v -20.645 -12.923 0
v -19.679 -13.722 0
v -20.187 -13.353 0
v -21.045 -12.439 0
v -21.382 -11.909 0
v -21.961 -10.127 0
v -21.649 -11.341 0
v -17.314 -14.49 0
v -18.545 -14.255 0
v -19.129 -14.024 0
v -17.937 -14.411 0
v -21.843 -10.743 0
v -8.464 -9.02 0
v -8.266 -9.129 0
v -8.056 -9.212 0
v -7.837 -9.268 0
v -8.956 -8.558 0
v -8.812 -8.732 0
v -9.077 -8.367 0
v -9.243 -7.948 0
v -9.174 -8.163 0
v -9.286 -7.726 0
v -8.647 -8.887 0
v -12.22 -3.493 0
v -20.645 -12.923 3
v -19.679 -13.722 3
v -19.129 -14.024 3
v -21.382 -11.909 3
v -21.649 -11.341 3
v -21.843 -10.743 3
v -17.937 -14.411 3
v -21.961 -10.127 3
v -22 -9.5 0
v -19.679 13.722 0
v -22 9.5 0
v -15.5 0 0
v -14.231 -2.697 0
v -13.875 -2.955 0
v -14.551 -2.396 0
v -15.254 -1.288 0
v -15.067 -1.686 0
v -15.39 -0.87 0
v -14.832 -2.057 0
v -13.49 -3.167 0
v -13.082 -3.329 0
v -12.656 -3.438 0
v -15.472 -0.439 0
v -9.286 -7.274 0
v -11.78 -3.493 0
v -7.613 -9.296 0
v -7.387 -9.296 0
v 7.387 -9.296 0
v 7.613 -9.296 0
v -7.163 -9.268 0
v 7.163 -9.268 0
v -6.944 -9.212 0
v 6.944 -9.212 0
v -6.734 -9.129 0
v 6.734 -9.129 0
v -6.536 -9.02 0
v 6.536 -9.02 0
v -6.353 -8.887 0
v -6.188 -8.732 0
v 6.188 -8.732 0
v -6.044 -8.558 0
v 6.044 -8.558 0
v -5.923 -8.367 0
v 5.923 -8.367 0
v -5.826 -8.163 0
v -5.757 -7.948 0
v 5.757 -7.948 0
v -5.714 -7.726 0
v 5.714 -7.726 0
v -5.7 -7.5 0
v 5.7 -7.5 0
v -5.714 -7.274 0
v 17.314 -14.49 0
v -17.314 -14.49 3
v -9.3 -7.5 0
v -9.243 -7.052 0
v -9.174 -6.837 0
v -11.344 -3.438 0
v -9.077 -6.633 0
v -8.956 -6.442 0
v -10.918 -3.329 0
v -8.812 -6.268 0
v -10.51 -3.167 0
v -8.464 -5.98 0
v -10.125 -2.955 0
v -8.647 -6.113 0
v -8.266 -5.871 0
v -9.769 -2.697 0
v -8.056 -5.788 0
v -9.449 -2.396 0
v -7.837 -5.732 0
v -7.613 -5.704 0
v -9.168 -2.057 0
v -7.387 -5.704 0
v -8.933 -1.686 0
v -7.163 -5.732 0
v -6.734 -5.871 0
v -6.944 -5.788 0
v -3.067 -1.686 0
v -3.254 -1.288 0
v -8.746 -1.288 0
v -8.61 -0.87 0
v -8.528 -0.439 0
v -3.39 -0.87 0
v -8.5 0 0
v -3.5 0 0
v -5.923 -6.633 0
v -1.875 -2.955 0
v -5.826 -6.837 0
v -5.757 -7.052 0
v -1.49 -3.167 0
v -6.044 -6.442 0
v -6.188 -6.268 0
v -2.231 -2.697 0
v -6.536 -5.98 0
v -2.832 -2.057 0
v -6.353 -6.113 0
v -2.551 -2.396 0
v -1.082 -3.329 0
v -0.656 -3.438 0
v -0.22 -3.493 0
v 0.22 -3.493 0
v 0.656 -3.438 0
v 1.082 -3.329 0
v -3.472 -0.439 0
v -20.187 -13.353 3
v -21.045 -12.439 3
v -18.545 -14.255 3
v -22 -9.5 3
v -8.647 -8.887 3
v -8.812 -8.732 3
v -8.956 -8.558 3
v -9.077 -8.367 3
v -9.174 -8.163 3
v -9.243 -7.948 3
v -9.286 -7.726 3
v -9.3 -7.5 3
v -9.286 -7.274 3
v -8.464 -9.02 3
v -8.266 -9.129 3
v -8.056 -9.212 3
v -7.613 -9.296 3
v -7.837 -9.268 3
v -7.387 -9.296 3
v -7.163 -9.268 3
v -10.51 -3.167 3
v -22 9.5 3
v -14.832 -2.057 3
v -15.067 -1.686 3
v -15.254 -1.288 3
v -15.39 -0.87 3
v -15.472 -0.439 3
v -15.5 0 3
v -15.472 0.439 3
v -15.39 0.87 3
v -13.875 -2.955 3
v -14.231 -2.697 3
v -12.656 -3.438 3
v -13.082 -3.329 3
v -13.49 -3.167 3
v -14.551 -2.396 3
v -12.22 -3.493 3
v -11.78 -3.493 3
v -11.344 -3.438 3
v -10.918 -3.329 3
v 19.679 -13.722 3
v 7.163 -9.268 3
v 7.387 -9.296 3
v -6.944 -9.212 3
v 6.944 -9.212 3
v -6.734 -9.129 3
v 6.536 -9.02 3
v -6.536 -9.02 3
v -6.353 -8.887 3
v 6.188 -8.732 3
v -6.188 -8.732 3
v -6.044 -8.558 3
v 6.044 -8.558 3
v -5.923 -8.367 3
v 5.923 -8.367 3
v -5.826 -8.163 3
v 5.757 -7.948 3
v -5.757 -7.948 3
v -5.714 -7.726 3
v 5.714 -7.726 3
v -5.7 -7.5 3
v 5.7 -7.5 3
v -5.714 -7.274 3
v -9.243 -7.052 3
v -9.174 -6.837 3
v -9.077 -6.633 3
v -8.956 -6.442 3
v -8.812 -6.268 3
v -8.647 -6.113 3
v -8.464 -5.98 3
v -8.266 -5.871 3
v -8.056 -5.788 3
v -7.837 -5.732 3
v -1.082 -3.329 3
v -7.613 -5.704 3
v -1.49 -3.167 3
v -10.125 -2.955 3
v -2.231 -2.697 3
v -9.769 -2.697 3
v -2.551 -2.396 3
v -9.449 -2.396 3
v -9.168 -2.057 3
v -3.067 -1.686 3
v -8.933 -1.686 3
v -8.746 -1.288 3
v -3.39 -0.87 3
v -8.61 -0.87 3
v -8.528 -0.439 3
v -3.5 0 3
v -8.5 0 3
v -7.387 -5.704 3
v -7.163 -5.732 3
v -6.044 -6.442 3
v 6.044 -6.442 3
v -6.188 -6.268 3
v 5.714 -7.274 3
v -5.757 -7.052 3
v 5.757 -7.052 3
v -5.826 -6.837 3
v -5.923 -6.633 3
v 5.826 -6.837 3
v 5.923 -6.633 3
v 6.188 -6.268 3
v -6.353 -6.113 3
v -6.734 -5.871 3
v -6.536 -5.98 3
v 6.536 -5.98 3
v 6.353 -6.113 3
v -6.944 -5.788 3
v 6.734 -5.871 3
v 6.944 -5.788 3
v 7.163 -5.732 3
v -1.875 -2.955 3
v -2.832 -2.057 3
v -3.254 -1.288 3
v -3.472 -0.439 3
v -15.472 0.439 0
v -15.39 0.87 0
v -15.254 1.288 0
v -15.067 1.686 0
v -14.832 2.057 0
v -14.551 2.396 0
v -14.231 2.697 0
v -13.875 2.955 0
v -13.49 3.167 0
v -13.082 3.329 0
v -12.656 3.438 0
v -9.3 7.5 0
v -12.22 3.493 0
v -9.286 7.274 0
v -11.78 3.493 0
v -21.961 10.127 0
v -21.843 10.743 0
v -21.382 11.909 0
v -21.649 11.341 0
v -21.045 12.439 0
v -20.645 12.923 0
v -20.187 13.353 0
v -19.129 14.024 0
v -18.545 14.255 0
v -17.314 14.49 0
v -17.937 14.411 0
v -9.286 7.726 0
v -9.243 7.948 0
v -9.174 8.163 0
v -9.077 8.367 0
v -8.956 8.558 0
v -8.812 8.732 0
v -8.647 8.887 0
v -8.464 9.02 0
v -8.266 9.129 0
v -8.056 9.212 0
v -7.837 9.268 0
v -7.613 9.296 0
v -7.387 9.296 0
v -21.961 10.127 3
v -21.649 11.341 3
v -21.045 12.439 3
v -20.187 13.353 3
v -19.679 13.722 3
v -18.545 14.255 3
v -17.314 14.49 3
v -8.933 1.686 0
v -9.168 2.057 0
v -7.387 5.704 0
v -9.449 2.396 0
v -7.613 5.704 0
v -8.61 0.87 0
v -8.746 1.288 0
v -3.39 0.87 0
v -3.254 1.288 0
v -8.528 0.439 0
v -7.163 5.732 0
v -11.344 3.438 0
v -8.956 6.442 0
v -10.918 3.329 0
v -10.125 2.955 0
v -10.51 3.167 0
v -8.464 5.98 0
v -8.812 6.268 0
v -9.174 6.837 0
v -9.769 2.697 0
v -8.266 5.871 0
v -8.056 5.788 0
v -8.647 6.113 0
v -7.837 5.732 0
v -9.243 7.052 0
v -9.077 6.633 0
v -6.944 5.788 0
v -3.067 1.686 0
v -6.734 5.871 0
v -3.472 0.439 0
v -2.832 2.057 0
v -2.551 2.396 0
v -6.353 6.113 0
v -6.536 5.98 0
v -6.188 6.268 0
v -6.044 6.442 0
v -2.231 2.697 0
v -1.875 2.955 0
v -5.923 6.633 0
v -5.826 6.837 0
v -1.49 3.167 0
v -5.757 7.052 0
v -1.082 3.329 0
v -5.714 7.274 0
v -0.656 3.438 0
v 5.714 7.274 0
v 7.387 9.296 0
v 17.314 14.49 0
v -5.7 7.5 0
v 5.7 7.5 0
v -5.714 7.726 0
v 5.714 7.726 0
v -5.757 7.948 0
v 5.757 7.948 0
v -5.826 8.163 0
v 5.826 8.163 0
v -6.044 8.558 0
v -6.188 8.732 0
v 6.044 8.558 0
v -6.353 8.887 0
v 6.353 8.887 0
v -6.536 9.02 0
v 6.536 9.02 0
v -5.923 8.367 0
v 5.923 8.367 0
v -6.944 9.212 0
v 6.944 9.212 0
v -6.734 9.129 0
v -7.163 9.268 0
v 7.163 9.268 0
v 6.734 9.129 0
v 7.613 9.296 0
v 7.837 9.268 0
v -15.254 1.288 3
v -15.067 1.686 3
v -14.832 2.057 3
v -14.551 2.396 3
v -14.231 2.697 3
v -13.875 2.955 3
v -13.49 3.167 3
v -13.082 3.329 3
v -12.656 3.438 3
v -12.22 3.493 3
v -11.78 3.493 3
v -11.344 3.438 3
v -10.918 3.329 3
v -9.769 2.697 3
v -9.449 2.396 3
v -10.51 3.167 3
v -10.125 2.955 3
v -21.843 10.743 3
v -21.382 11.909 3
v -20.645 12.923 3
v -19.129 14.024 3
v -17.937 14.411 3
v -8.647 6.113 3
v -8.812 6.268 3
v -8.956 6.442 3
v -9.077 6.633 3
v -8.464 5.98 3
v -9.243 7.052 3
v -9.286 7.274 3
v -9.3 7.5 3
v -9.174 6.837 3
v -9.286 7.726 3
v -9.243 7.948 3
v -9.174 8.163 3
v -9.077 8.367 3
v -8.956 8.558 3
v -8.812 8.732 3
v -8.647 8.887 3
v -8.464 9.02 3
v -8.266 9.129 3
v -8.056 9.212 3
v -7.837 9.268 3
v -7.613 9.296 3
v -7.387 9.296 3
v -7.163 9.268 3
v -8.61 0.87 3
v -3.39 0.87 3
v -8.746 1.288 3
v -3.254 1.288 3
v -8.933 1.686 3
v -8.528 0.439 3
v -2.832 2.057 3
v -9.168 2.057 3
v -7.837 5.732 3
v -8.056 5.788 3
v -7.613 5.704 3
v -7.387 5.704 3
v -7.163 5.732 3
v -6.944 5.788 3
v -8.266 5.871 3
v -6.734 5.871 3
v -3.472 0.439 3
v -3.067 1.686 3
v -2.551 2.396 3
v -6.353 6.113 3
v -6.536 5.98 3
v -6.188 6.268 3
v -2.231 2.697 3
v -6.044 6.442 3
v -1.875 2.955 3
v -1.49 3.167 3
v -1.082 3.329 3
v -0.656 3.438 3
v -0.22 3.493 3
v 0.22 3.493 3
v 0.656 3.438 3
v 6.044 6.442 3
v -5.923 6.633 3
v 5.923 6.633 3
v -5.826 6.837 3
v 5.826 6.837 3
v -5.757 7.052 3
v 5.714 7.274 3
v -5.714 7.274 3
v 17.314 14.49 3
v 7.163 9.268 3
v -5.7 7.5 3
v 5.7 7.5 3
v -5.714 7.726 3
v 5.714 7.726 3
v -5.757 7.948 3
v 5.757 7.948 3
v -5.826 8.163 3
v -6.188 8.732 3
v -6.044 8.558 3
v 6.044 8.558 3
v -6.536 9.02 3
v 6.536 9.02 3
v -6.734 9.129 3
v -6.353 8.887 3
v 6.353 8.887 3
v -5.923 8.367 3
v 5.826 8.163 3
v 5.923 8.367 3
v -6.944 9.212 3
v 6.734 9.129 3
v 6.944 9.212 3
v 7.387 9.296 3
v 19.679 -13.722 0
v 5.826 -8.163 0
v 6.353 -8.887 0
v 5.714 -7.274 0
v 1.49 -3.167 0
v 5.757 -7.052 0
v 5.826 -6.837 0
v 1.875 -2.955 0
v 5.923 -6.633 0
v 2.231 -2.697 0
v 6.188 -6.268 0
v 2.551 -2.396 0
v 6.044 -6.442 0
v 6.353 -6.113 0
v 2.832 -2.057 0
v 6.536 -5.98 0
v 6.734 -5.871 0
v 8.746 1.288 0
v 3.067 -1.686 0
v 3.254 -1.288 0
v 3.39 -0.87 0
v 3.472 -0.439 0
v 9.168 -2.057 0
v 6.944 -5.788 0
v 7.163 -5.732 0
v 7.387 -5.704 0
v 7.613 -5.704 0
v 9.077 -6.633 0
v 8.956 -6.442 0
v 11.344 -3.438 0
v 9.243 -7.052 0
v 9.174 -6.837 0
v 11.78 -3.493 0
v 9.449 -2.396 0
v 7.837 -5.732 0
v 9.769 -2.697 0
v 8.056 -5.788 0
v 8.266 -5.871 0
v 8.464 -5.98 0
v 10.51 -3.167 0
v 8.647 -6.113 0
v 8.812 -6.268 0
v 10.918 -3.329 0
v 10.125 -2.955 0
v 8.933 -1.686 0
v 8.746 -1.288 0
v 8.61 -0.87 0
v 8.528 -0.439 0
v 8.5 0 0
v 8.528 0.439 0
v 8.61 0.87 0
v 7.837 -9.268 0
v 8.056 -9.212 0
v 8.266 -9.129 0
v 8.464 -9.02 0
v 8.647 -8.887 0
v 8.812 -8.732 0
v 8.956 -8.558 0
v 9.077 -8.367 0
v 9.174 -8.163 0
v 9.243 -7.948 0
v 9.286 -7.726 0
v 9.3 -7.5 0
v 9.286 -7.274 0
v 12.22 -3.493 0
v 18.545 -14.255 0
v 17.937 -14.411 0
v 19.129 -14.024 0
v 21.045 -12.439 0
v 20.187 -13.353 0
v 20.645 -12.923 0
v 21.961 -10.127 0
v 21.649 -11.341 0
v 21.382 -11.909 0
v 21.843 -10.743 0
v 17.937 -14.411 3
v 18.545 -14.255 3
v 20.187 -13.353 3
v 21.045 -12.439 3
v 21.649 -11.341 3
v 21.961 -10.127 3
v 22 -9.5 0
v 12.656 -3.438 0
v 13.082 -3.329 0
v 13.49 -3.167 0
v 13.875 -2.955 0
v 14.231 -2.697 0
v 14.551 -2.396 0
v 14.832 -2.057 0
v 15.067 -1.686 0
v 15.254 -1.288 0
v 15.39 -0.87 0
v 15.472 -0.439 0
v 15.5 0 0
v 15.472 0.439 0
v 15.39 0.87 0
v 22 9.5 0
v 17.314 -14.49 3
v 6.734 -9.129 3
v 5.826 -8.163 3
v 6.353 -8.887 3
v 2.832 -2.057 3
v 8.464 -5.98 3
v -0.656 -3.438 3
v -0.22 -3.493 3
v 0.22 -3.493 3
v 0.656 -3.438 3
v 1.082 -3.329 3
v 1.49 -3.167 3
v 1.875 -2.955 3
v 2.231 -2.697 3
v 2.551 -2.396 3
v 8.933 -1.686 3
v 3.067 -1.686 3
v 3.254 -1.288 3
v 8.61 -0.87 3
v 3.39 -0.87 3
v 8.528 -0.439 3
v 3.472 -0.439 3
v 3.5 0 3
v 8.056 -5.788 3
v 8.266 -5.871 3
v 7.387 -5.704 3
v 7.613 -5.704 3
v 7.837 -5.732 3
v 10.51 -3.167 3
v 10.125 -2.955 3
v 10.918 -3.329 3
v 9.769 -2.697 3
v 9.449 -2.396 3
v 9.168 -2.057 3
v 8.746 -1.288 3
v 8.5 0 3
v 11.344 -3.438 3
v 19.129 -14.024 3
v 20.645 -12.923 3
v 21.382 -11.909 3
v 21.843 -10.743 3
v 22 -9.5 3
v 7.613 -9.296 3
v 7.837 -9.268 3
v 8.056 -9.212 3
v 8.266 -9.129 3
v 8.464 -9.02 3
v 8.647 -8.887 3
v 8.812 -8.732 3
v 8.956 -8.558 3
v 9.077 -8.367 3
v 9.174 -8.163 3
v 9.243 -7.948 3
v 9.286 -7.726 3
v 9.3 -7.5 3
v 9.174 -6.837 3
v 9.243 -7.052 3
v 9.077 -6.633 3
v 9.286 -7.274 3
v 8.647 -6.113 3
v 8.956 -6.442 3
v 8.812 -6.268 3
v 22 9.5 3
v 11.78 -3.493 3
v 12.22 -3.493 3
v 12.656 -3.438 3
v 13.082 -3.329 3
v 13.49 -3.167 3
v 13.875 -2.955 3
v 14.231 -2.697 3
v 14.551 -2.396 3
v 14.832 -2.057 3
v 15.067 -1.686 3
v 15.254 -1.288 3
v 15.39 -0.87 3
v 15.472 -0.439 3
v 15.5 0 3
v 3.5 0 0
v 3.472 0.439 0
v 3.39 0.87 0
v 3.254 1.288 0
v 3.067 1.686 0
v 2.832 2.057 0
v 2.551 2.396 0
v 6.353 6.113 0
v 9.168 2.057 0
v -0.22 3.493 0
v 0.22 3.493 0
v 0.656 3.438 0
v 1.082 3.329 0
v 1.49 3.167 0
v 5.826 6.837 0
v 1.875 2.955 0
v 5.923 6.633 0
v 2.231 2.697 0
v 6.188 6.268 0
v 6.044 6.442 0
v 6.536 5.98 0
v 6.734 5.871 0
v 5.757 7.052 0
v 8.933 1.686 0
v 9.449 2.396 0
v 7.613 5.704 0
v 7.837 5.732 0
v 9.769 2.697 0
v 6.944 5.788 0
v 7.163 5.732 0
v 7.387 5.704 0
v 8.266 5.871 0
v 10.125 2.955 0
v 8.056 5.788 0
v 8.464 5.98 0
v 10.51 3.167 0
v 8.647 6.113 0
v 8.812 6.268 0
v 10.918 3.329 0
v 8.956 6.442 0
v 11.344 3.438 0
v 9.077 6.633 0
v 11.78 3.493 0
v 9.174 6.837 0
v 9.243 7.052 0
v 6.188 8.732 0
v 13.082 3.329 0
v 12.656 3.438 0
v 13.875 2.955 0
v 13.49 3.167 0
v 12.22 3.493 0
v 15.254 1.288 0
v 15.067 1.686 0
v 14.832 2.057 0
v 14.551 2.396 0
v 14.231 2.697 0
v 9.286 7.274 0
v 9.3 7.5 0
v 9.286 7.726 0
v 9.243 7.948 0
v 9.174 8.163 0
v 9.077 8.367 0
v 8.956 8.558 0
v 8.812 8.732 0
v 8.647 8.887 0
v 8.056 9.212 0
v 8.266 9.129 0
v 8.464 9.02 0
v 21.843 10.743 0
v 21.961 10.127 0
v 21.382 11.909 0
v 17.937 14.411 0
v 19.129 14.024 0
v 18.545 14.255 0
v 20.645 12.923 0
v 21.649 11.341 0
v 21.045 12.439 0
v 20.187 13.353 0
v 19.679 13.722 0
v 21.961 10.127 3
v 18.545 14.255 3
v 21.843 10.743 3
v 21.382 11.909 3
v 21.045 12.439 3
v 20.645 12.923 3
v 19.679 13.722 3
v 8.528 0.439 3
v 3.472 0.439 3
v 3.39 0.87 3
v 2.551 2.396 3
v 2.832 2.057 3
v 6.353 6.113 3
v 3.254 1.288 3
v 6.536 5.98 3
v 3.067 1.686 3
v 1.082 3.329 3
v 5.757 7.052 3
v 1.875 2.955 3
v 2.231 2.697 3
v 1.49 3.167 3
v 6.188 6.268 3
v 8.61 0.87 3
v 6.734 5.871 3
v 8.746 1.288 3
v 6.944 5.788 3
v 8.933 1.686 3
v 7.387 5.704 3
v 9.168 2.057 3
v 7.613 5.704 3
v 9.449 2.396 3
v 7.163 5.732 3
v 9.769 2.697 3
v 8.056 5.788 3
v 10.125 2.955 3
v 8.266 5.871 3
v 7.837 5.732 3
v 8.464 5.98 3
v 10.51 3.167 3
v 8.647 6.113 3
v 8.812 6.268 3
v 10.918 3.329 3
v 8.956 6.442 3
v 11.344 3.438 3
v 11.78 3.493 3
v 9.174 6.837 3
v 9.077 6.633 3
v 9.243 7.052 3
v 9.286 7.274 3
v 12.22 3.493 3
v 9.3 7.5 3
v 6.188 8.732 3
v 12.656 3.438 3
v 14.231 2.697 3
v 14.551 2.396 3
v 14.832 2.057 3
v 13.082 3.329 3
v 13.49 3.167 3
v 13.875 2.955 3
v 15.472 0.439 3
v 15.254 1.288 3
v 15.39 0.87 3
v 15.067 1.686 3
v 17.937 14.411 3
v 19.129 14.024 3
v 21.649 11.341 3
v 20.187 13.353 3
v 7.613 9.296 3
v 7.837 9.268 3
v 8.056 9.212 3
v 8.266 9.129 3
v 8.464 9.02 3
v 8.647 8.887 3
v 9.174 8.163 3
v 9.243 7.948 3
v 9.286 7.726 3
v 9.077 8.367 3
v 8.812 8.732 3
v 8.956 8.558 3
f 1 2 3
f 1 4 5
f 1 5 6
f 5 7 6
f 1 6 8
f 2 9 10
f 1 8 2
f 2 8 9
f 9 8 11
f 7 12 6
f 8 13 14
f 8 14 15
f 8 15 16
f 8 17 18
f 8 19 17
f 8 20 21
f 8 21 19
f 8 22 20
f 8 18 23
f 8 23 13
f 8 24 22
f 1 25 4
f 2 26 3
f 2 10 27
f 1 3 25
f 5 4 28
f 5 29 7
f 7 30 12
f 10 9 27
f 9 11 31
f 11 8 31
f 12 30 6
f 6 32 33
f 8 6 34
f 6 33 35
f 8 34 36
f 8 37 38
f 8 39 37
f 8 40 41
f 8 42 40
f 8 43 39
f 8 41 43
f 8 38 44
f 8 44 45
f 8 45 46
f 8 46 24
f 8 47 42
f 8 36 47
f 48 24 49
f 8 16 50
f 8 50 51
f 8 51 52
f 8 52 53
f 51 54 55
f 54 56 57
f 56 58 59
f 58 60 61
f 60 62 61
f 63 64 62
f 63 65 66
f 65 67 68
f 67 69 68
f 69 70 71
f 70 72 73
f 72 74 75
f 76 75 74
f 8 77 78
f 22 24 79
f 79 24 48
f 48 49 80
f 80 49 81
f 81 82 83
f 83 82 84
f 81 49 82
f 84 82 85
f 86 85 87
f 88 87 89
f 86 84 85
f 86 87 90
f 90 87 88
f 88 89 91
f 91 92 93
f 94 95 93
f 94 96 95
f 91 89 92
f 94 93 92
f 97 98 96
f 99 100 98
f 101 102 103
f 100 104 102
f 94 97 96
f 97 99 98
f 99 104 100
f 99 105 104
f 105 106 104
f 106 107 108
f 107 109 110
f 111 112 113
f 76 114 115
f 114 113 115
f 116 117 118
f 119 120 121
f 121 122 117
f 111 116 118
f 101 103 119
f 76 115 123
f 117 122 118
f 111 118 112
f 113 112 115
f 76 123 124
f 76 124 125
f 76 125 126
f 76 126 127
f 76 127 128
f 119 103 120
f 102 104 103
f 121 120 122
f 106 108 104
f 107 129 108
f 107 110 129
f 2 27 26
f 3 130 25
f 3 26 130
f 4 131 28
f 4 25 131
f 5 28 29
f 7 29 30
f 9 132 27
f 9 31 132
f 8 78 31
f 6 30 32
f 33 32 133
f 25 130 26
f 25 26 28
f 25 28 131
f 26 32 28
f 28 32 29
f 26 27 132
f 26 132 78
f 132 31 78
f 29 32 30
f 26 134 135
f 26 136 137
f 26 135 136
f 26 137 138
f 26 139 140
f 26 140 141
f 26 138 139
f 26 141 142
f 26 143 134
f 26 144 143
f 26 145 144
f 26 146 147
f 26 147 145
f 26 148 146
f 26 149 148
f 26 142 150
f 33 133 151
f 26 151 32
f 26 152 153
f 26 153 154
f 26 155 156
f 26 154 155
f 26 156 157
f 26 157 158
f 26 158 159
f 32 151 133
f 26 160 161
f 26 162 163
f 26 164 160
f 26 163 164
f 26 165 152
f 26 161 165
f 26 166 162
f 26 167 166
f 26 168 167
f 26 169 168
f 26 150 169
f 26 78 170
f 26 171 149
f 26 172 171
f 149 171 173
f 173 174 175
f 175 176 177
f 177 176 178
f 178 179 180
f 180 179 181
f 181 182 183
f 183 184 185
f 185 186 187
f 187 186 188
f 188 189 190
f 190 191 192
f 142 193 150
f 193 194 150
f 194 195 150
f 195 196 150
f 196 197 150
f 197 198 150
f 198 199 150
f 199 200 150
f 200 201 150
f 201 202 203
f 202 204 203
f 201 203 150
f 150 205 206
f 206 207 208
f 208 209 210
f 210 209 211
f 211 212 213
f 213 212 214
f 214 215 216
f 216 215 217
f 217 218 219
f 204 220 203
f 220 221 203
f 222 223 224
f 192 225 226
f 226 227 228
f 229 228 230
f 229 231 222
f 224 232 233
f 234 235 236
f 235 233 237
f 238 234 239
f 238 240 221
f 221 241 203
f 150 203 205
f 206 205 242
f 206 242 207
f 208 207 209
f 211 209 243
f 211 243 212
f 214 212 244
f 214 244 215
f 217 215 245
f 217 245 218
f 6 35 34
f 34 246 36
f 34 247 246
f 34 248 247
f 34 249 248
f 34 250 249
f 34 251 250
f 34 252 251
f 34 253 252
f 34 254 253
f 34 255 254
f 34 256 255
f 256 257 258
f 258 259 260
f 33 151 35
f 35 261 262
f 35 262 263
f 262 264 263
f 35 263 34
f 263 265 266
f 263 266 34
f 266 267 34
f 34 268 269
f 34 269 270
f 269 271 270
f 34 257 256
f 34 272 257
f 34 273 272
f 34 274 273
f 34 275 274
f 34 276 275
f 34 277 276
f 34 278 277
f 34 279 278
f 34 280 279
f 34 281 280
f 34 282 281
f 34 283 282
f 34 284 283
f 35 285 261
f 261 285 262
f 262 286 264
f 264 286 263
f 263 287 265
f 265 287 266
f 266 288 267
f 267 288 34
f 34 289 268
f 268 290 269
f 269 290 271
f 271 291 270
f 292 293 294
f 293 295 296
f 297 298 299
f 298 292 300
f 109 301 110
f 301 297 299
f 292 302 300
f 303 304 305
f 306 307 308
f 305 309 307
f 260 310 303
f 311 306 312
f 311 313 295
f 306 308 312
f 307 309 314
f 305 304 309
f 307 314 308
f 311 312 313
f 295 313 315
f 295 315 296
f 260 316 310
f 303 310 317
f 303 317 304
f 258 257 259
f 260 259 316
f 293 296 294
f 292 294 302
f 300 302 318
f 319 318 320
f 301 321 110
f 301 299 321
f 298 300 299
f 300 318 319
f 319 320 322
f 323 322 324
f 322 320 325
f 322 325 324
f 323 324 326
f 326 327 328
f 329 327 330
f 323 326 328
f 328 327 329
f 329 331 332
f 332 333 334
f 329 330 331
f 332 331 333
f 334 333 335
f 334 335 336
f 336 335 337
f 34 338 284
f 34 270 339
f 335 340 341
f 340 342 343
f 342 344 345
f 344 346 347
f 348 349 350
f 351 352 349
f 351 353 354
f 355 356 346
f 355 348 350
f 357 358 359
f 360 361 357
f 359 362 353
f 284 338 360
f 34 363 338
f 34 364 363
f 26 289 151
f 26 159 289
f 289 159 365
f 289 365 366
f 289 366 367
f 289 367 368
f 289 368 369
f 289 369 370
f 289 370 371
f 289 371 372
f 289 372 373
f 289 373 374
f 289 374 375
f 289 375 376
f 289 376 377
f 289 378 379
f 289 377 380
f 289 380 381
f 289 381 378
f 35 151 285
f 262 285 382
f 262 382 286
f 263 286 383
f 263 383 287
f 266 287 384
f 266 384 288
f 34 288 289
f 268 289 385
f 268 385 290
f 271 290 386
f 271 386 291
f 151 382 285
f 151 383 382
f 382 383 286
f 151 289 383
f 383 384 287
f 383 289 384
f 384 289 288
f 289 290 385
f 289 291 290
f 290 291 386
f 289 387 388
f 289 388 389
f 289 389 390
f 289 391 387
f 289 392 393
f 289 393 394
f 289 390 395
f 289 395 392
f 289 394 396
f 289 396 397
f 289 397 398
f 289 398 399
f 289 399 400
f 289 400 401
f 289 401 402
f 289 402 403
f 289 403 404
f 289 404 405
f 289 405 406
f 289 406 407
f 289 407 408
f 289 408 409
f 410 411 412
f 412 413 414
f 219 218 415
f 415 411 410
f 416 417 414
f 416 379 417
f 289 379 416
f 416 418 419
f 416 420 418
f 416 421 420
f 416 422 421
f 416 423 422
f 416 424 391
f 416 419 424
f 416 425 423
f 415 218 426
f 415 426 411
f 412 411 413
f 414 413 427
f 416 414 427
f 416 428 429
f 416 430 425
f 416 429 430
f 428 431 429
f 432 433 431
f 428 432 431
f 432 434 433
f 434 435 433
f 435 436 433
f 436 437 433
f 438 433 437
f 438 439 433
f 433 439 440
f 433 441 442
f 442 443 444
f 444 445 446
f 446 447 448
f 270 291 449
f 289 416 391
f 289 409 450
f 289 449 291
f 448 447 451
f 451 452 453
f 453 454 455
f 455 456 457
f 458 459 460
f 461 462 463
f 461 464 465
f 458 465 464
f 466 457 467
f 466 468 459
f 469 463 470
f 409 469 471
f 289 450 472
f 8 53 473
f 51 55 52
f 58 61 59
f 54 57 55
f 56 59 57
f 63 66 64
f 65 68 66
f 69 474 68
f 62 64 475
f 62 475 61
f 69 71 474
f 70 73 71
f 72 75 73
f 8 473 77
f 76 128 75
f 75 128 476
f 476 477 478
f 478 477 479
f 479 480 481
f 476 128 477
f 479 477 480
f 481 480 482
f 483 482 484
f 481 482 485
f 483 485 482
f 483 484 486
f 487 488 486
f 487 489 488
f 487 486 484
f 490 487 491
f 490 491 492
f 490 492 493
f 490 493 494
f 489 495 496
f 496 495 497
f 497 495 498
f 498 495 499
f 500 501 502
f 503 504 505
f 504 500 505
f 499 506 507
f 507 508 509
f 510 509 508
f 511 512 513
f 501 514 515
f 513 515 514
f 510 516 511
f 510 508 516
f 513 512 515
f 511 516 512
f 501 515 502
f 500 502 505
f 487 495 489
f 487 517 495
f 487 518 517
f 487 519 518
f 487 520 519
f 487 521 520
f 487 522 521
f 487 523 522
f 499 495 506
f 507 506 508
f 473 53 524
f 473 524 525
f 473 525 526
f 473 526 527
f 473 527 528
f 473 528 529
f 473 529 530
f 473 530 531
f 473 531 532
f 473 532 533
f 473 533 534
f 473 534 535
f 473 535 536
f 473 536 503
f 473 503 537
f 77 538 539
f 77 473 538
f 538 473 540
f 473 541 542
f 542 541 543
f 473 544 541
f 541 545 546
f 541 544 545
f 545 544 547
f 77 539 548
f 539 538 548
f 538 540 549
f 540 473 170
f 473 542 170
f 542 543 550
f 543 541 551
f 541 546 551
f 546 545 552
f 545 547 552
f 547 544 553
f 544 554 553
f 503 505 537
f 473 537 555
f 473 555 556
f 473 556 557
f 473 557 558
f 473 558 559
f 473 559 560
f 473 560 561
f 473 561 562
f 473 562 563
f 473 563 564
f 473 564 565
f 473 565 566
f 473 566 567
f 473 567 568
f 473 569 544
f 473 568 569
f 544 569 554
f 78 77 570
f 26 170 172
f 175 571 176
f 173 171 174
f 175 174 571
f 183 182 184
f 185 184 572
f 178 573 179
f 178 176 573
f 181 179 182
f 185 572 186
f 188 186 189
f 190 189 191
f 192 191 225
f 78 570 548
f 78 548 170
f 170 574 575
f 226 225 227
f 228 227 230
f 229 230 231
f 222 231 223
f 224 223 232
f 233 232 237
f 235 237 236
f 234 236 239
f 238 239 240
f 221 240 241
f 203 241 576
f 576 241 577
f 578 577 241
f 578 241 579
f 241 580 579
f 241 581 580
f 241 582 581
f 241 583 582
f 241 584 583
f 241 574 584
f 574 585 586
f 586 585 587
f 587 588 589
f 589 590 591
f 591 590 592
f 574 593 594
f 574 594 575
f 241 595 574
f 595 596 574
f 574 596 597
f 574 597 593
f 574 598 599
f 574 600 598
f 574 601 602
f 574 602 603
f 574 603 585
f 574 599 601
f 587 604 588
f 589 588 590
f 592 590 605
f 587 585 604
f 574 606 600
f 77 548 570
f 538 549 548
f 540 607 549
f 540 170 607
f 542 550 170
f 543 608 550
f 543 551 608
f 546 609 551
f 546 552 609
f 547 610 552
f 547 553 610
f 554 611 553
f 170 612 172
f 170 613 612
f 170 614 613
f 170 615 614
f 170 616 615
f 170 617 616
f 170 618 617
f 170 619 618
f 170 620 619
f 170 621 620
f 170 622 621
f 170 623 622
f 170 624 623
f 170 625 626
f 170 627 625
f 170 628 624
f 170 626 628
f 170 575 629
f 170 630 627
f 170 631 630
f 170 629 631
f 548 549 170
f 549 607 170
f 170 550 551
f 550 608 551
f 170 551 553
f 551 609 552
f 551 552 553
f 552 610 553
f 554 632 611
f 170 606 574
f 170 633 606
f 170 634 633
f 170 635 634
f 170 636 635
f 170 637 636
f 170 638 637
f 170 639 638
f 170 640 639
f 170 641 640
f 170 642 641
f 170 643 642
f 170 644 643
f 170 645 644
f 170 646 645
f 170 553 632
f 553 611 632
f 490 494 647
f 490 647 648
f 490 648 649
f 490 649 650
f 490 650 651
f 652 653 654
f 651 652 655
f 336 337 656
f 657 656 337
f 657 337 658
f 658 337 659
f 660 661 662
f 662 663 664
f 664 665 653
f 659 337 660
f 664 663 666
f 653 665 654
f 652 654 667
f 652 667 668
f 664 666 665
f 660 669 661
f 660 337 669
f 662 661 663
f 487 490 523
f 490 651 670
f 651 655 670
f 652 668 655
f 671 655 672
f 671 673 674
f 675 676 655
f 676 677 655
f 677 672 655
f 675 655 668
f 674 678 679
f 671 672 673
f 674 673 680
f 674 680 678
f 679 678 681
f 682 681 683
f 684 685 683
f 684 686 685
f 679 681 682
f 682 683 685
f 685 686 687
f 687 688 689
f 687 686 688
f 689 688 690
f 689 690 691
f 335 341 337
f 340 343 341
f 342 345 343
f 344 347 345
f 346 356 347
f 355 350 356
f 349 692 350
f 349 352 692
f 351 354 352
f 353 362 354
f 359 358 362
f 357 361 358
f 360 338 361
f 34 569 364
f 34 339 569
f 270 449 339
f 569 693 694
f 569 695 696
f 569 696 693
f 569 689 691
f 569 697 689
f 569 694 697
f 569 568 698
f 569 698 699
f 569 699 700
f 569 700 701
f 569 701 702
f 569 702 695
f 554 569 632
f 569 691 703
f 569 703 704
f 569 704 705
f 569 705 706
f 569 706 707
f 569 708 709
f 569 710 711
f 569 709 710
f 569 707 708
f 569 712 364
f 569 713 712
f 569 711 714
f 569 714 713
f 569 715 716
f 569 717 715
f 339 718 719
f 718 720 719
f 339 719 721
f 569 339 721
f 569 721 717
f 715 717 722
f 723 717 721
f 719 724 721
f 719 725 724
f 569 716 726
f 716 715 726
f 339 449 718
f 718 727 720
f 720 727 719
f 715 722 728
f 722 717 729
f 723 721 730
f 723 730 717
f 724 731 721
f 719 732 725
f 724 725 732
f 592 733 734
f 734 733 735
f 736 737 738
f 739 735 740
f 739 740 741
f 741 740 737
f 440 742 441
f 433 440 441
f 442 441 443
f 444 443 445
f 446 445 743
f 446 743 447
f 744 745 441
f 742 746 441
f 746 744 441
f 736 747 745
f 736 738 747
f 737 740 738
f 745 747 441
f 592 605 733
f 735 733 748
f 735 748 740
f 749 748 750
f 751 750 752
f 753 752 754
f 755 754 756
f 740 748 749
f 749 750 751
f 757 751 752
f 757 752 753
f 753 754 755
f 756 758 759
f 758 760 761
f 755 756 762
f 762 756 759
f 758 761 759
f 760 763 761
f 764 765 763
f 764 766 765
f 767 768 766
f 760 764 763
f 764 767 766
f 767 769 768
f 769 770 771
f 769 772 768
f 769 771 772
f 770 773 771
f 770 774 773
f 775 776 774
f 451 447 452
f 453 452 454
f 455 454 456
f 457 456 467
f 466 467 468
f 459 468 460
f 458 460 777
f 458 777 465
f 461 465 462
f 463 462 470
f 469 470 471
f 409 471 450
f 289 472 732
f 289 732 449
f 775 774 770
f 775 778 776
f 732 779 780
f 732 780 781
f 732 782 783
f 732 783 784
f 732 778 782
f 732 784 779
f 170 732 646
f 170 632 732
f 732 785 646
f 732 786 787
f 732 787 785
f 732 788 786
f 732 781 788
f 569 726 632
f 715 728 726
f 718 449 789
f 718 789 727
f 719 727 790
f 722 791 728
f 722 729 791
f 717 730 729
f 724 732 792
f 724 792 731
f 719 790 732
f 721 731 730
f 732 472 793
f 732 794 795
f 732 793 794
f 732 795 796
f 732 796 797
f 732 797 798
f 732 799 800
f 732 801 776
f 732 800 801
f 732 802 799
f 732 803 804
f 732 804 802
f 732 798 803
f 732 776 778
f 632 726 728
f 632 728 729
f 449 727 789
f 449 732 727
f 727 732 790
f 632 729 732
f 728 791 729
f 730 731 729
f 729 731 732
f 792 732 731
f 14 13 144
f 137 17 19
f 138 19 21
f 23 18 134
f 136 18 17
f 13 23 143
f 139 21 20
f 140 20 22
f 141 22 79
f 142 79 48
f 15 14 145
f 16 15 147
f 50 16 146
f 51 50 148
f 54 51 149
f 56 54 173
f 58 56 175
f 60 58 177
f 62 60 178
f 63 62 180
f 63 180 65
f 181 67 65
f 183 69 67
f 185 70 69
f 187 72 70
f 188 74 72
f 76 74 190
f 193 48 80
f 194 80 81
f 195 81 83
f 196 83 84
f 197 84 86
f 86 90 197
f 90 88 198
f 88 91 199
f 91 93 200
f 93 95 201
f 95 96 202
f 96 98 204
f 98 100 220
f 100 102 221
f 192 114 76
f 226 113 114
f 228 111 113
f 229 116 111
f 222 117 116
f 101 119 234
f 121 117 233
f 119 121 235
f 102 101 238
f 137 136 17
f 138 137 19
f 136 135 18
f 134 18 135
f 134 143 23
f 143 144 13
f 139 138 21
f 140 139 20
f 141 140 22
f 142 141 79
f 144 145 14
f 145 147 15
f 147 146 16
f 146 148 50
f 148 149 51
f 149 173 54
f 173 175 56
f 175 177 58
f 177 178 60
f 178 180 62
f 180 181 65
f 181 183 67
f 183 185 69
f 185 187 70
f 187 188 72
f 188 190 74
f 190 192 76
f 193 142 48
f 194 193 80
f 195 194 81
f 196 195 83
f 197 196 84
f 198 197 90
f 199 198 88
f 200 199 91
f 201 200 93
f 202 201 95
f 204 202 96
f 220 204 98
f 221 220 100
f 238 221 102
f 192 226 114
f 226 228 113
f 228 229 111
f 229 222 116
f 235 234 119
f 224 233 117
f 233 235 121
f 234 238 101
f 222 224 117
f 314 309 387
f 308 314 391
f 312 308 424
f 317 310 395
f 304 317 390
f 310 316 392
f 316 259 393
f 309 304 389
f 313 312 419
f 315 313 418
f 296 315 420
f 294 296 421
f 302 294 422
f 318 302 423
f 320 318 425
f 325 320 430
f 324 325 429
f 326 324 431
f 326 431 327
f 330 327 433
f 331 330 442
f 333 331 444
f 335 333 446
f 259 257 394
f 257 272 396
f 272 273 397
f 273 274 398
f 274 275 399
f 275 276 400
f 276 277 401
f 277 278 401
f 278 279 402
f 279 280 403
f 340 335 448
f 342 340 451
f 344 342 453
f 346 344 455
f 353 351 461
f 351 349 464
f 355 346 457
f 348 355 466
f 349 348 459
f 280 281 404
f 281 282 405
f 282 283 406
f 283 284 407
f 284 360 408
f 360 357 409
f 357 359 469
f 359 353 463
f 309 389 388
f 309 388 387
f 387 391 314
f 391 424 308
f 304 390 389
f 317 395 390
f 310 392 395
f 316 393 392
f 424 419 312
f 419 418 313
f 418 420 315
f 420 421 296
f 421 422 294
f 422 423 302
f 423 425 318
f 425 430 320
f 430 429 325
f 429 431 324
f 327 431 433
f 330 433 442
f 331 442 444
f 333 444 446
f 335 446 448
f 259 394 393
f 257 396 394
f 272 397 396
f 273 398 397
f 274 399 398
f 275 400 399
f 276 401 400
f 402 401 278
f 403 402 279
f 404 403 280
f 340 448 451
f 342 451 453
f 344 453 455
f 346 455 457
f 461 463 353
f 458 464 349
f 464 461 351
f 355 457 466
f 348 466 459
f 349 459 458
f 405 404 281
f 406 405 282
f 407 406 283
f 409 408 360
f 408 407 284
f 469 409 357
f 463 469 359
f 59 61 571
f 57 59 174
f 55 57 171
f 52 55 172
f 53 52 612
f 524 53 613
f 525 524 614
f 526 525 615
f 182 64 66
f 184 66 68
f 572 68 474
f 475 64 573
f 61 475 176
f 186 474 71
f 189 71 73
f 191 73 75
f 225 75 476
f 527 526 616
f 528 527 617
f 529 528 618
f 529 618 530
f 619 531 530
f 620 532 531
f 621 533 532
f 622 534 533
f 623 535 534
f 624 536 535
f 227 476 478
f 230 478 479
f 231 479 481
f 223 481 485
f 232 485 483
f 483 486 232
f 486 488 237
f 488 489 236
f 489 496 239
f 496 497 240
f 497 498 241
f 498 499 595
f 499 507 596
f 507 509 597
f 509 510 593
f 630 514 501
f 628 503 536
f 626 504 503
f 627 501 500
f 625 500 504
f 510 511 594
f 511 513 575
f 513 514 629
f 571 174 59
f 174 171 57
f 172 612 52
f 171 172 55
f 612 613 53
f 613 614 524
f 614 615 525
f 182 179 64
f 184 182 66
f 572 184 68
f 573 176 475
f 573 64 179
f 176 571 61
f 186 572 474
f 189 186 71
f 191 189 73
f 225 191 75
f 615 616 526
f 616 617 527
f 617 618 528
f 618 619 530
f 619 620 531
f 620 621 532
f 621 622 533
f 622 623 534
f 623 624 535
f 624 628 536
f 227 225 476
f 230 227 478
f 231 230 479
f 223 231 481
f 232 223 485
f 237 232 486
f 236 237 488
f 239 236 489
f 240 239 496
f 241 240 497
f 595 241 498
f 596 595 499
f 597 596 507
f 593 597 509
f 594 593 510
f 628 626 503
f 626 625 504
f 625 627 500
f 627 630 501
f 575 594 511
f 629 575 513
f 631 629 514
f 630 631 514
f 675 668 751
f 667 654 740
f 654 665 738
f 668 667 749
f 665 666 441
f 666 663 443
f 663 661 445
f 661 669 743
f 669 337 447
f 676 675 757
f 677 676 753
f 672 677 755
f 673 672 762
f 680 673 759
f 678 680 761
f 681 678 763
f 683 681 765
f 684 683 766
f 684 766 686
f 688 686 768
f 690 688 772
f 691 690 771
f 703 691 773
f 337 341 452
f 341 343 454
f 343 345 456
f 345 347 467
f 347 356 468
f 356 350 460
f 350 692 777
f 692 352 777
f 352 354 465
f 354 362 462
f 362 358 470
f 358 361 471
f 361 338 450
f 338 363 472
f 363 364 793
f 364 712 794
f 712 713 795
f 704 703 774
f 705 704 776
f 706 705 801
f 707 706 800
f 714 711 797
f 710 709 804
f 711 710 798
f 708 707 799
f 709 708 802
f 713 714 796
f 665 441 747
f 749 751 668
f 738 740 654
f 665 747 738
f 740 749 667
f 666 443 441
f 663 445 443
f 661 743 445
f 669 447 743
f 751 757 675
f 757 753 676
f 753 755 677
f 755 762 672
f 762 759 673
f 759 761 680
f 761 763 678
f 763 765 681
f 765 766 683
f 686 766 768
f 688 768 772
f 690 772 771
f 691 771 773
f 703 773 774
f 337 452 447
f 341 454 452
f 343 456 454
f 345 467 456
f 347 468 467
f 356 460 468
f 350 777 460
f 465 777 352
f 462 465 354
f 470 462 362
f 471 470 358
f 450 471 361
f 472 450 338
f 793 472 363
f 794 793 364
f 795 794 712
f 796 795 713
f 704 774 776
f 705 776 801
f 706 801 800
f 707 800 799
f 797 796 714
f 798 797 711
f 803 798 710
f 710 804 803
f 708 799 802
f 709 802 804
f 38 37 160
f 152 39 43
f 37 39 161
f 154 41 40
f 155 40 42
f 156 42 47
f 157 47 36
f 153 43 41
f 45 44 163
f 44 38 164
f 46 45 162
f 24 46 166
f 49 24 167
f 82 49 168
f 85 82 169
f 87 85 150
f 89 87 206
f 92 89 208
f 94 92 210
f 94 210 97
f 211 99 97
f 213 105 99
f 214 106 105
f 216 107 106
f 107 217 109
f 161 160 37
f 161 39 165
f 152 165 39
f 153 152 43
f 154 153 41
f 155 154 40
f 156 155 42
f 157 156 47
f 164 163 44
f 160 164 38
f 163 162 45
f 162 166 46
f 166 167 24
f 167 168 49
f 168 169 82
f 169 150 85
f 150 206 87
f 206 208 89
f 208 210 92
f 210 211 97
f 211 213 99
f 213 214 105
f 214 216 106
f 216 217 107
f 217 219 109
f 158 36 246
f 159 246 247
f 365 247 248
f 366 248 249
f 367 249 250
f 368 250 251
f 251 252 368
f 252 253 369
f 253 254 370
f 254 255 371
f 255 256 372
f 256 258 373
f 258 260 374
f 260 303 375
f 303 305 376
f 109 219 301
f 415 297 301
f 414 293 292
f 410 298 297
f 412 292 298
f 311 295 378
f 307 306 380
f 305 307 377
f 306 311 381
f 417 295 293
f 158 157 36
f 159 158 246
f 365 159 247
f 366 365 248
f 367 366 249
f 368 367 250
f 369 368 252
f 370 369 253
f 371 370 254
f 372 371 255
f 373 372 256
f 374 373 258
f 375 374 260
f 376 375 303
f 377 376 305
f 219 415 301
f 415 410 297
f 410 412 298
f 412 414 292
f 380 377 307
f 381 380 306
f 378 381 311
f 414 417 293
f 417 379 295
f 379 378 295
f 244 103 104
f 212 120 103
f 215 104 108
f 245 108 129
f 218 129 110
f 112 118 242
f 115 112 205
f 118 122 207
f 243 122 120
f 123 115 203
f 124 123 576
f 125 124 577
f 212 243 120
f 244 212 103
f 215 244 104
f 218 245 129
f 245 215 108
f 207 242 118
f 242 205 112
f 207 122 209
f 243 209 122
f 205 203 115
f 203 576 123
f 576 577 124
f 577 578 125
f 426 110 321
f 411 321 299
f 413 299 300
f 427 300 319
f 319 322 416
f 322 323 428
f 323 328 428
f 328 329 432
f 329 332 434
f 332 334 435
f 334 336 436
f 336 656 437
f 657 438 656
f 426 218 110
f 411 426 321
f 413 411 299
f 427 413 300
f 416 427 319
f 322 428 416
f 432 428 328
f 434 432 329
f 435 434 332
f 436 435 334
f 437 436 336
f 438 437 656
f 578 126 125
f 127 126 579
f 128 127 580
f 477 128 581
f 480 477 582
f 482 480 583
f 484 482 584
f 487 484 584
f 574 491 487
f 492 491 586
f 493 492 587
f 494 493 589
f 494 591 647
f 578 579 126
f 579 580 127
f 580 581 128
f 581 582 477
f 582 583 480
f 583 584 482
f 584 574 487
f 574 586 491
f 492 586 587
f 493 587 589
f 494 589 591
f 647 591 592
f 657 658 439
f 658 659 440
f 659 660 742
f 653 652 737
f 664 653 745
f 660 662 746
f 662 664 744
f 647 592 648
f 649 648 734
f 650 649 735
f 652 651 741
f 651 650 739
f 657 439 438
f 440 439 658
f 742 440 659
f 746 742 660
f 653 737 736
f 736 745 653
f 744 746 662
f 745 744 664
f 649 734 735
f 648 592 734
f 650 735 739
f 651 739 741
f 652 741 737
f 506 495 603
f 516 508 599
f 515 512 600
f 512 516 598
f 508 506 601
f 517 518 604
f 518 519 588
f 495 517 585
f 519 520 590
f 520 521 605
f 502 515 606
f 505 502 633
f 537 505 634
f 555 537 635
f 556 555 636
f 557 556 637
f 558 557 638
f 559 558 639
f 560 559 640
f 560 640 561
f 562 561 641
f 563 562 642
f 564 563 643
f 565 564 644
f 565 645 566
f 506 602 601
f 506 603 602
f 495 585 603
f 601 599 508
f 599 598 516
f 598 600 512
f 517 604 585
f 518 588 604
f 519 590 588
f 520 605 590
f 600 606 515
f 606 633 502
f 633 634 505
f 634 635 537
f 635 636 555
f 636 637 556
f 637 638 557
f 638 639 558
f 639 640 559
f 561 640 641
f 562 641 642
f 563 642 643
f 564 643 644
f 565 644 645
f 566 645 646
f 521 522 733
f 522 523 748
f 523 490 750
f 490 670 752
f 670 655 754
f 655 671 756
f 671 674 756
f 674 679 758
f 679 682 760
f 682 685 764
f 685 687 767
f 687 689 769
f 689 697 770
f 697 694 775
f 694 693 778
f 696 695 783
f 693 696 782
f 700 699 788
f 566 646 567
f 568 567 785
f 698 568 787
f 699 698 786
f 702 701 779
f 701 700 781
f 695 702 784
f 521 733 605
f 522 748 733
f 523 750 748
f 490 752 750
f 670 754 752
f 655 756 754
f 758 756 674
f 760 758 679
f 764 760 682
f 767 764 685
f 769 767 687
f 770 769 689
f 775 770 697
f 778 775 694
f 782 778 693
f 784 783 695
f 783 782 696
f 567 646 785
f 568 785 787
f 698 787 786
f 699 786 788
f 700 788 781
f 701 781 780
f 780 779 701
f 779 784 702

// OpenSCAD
$fn = 50;

difference() {
	union() {
		hull() {
			translate(v = [-17.0, 9.5, 0]) {
				cylinder(h = 3, r = 5);
			}
			translate(v = [17.0, 9.5, 0]) {
				cylinder(h = 3, r = 5);
			}
			translate(v = [-17.0, -9.5, 0]) {
				cylinder(h = 3, r = 5);
			}
			translate(v = [17.0, -9.5, 0]) {
				cylinder(h = 3, r = 5);
			}
		}
	}
	union() {
		translate(v = [-7.5, -7.5, 0]) {
			cylinder(h = 3, r = 1.8);
		}
		translate(v = [-7.5, 7.5, 0]) {
			cylinder(h = 3, r = 1.8);
		}
		translate(v = [7.5, -7.5, 0]) {
			cylinder(h = 3, r = 1.8);
		}
		translate(v = [7.5, 7.5, 0]) {
			cylinder(h = 3, r = 1.8);
		}
		translate(v = [-12.0, 0, 0.0]) {
			cylinder(h = 3, r = 3.5);
		}
		cylinder(h = 3, r = 3.5);
		translate(v = [12.0, 0, 0.0]) {
			cylinder(h = 3, r = 3.5);
		}
	}
}
